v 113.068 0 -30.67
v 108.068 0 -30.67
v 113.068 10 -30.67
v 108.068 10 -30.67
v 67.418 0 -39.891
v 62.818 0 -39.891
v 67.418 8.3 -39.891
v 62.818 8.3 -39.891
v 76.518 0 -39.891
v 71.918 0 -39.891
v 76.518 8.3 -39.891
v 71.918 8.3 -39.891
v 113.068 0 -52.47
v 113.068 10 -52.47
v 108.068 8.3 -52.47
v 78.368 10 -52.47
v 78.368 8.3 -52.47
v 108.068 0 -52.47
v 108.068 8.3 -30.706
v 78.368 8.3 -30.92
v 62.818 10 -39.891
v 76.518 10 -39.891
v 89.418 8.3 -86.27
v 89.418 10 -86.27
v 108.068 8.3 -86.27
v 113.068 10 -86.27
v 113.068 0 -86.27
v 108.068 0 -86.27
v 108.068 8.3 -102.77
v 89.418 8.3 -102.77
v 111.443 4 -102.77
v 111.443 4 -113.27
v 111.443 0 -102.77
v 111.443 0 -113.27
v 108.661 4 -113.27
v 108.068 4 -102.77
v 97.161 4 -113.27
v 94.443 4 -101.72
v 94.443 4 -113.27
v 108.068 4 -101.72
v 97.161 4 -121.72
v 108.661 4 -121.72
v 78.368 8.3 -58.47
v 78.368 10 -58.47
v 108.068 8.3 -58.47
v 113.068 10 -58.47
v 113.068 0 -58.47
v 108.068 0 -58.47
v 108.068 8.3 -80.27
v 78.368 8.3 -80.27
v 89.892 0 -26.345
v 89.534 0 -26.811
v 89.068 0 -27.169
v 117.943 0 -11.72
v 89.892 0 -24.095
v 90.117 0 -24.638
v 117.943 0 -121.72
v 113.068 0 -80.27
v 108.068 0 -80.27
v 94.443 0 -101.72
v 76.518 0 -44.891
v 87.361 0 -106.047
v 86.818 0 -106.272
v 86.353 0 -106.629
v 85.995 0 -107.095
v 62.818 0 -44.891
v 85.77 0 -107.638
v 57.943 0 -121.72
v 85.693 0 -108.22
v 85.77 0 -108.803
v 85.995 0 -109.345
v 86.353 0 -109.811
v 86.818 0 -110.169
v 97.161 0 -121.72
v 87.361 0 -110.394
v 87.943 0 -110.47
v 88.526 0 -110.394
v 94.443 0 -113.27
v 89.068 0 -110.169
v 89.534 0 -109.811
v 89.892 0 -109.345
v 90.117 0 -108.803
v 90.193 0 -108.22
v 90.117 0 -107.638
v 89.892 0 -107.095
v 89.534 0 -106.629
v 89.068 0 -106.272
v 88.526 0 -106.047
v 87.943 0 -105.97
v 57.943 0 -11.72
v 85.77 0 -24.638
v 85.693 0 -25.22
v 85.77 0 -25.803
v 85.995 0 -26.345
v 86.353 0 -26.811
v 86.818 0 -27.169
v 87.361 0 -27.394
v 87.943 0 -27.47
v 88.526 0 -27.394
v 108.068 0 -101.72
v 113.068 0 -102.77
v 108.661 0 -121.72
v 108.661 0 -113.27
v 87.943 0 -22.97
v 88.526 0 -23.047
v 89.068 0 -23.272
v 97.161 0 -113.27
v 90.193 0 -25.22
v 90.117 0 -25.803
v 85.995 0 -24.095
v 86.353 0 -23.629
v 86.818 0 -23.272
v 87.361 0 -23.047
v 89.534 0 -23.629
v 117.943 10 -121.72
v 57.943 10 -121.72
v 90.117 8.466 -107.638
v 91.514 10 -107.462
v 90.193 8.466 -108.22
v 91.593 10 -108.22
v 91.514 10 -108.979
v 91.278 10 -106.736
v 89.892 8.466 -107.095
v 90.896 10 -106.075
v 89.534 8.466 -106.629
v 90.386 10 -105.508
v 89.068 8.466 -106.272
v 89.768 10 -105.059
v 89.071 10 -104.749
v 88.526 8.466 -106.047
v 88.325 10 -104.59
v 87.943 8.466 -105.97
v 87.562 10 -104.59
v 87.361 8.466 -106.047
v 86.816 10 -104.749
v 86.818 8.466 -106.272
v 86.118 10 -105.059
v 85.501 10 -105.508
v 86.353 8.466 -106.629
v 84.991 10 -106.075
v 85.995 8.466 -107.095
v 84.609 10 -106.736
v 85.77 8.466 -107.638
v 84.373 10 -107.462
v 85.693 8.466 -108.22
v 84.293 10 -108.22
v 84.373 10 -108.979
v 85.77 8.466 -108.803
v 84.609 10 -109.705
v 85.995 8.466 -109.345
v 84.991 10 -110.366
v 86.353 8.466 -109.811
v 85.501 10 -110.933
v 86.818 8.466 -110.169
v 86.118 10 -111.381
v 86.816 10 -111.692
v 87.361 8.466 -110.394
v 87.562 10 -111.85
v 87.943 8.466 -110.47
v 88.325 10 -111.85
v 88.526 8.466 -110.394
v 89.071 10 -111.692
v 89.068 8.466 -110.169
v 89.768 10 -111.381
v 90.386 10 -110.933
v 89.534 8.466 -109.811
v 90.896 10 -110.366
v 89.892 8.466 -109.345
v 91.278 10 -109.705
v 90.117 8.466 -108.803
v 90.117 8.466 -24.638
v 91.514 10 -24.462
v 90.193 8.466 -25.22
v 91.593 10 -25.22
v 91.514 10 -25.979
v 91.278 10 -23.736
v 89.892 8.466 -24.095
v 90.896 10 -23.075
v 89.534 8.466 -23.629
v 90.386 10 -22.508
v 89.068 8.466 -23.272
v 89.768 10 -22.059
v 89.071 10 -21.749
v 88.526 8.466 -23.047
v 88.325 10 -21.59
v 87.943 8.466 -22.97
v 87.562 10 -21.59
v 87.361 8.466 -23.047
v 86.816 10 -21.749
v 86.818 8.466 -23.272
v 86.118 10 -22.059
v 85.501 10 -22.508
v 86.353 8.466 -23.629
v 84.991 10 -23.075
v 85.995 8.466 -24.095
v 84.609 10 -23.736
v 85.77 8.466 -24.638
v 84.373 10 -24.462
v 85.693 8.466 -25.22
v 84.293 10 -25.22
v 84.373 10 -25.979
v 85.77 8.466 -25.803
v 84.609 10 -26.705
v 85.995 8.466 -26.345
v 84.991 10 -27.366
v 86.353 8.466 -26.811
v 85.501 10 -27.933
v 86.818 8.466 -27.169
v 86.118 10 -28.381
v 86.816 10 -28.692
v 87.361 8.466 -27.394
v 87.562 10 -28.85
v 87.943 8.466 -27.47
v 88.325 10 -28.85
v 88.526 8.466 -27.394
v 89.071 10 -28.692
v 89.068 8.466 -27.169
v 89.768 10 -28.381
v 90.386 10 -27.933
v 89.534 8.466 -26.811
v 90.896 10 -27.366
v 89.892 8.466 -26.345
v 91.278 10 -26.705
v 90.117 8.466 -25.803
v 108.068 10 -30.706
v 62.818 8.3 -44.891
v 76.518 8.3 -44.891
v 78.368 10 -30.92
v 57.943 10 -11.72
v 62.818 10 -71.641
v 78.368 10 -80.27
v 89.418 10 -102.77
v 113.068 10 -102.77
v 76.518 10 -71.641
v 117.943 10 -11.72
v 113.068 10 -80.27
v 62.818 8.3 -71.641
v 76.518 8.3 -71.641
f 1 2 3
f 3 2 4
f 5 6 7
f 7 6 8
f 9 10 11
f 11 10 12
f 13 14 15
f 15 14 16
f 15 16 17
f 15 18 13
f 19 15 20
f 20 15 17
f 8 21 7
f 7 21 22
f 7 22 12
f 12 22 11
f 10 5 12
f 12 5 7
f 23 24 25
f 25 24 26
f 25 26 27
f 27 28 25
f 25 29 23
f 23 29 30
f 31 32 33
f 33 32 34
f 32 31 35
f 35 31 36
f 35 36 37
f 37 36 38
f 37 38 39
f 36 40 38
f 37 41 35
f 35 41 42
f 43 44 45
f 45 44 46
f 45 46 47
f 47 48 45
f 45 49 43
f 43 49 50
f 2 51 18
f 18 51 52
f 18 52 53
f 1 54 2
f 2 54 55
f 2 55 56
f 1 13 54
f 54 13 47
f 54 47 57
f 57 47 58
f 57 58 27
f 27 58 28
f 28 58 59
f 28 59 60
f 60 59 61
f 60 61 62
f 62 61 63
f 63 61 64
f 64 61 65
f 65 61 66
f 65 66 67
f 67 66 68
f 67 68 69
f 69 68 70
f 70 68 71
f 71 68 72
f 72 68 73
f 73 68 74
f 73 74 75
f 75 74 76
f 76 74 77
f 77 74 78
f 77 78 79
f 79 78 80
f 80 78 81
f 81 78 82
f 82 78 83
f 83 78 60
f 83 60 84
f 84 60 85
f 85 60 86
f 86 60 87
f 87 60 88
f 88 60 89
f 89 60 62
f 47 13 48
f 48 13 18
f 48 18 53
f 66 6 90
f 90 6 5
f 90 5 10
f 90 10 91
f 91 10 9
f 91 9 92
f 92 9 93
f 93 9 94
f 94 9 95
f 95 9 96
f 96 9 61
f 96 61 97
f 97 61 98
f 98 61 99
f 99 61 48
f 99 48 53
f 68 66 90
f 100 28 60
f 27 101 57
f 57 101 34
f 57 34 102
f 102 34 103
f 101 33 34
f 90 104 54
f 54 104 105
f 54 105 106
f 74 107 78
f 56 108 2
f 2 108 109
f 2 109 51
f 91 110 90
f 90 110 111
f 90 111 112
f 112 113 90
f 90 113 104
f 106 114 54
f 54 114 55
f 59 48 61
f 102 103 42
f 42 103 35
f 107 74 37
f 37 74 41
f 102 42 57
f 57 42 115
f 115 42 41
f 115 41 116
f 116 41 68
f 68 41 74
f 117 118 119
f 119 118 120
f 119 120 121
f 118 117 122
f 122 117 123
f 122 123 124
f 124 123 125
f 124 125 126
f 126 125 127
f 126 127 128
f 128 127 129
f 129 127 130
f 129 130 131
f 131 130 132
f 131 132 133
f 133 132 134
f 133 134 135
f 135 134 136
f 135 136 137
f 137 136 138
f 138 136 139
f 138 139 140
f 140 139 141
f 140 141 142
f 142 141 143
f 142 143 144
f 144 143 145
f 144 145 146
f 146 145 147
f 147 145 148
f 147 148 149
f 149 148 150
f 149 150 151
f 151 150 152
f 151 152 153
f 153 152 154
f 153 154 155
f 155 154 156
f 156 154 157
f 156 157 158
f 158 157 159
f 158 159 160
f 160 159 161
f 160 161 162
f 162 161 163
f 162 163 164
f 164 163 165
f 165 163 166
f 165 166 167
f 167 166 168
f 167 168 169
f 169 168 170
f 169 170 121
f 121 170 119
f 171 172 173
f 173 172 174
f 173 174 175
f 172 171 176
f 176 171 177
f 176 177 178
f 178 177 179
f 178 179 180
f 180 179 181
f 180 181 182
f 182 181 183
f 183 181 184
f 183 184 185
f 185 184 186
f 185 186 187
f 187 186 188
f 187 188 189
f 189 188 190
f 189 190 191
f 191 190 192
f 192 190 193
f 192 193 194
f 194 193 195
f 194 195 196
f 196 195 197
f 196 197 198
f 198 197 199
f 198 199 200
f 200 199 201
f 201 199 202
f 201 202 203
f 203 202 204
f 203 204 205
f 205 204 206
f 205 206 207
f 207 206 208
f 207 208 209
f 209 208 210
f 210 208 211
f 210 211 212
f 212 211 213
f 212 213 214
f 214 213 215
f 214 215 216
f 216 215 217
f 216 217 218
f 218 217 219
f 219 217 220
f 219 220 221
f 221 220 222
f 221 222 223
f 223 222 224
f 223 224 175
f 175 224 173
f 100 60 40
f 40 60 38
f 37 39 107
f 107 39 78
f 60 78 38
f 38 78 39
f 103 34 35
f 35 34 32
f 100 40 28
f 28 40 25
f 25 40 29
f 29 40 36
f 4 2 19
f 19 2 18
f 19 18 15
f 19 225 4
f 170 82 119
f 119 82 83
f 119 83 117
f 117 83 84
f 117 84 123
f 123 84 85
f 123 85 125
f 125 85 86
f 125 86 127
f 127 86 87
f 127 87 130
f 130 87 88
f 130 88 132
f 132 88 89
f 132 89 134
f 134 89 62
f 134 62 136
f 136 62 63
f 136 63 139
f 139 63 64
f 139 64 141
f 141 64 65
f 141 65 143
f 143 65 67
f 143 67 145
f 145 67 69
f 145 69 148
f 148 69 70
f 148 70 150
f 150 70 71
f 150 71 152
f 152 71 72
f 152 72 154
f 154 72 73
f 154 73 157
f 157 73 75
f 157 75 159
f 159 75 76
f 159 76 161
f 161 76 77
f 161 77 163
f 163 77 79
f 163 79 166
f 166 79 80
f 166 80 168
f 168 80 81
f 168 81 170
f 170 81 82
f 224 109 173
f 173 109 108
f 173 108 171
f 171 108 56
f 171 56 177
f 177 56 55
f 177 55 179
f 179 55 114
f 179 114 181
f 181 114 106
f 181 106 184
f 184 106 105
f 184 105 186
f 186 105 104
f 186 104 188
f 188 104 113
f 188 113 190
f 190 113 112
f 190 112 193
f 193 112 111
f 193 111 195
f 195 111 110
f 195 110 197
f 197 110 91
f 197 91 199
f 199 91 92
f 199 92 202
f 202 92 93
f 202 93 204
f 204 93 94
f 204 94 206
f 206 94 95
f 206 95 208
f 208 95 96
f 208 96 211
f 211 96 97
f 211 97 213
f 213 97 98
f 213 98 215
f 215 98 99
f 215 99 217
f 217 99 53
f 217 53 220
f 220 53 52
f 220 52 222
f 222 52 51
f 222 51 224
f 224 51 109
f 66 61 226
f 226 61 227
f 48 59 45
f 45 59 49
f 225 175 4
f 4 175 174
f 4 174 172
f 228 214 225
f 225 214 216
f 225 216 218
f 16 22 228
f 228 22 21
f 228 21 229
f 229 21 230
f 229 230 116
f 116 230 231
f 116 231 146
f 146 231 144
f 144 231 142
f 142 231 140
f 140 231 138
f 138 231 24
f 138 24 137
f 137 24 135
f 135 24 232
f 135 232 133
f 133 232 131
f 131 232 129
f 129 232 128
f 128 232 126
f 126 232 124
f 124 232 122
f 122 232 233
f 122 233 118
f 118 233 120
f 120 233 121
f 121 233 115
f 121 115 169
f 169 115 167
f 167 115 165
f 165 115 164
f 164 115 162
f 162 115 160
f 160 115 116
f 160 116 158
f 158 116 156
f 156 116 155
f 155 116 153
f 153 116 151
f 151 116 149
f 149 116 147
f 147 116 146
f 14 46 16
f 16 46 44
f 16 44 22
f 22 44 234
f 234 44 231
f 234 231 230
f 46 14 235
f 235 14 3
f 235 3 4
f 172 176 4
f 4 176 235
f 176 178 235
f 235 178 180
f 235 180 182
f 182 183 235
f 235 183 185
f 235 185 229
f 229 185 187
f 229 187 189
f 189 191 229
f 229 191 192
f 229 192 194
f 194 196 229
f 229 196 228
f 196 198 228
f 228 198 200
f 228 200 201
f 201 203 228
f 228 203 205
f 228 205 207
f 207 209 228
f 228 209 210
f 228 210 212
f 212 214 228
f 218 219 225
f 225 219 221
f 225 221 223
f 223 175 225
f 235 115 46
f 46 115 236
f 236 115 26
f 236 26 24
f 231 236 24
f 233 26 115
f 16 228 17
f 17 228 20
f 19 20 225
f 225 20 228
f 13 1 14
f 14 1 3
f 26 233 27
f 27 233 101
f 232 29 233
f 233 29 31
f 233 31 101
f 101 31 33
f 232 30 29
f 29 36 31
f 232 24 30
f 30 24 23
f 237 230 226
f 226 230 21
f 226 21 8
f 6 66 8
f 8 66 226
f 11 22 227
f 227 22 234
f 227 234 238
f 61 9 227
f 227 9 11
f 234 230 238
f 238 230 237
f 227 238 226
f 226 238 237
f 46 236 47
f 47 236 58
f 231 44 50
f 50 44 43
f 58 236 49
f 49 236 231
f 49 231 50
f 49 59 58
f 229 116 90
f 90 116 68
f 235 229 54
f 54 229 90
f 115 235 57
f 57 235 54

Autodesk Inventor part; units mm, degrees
ref_plane "작업 평면1" through (0, 10, 0) normal (0, 1, 0) x (1, 0, 0)
sketch "스케치3" plane through (0, 10, 0) normal (0, 1, 0) x (1, 0, 0)
  line L0 (113.0685, 80.2704) -> (78.3685, 80.2704)
  line L1 (76.5185, 71.6407) -> (76.5185, 39.8907)
  line L2 (76.5185, 71.6407) -> (62.8185, 71.6407)
  line L3 (78.3685, 80.2704) -> (78.3685, 58.4704)
  line L4 (113.0685, 58.4704) -> (113.0685, 80.2704)
  line L5 (113.0685, 58.4704) -> (78.3685, 58.4704)
  line L6 (108.4435, 113.2704) -> (97.4435, 113.2704)
  line L7 (97.4435, 113.2704) -> (97.4435, 121.7204)
  line L8 (97.4435, 121.7204) -> (108.4435, 121.7204)
  line L9 (108.4435, 121.7204) -> (108.4435, 113.2704)
  line L10 (113.0685, 52.4704) -> (78.3685, 52.4704)
  line L11 (113.0685, 30.6704) -> (113.0685, 52.4704)
  line L12 (62.8185, 39.8907) -> (76.5185, 39.8907)
  line L13 (62.8185, 71.6407) -> (62.8185, 39.8907)
  line L14 (78.3685, 52.4704) -> (78.3685, 30.9204)
  line L15 (113.0685, 30.6704) -> (78.3685, 30.9204)
  line L16 (117.9435, 121.7204) -> (57.9435, 121.7204)
  line L17 (57.9435, 121.7204) -> (57.9435, 11.7204)
  line L18 (117.9435, 11.7204) -> (117.9435, 121.7204)
  line L19 (57.9435, 11.7204) -> (117.9435, 11.7204)
  circle A0 centre (87.9435, 108.2204) radius 2.25
  circle A1 centre (87.9435, 25.2204) radius 2.25
  line L20 (113.0685, 99.0204) -> (108.0685, 99.0204)
  line L21 (108.0685, 90.0204) -> (113.0685, 90.0204)
  line L22 (113.0685, 99.0204) -> (113.0685, 90.0204)
  line L23 (108.0685, 99.0204) -> (108.0685, 90.0204)
  line L24 (71.9185, 39.8907) -> (67.4185, 39.8907)
  line L25 (113.0685, 39.3204) -> (108.0685, 39.3204)
  line L26 (108.0685, 43.8204) -> (113.0685, 43.8204)
  line L27 (71.9185, 44.8907) -> (71.9185, 39.8907)
  line L28 (108.0685, 43.8204) -> (108.0685, 39.3204)
  line L29 (113.0685, 43.8204) -> (113.0685, 39.3204)
  line L30 (71.9185, 44.8907) -> (67.4185, 44.8907)
  line L31 (67.4185, 44.8907) -> (67.4185, 39.8907)
  line L32 (113.0685, 71.6204) -> (113.0685, 67.1204)
  line L33 (113.0685, 86.2704) -> (89.4185, 86.2704)
  line L34 (89.4185, 86.2704) -> (89.4185, 102.7704)
  line L35 (89.4185, 102.7704) -> (113.0685, 102.7704)
  line L36 (113.0685, 102.7704) -> (113.0685, 86.2704)
  line L37 (108.0685, 67.1204) -> (113.0685, 67.1204)
  line L38 (113.0685, 67.1204) -> (113.0685, 71.6204)
  line L39 (113.0685, 71.6204) -> (108.0685, 71.6204)
  line L40 (108.0685, 71.6204) -> (108.0685, 67.1204)
  line L41 (113.0685, 30.6704) -> (108.0685, 30.6704)
  line L42 (108.0685, 30.6704) -> (108.0685, 52.4704)
  line L43 (108.0685, 52.4704) -> (113.0685, 52.4704)
  line L44 (113.0685, 52.4704) -> (113.0685, 30.6704)
  line L45 (113.0685, 58.4704) -> (108.0685, 58.4704)
  line L46 (108.0685, 58.4704) -> (108.0685, 80.2704)
  line L47 (108.0685, 80.2704) -> (113.0685, 80.2704)
  line L48 (113.0685, 80.2704) -> (113.0685, 58.4704)
  line L49 (113.0685, 86.2704) -> (108.0685, 86.2704)
  line L50 (108.0685, 86.2704) -> (108.0685, 102.7704)
  line L51 (108.0685, 102.7704) -> (113.0685, 102.7704)
  line L52 (113.0685, 102.7704) -> (113.0685, 86.2704)
  line L53 (76.5185, 39.8907) -> (62.8185, 39.8907)
  line L54 (62.8185, 39.8907) -> (62.8185, 44.8907)
  line L55 (62.8185, 44.8907) -> (76.5185, 44.8907)
  line L56 (76.5185, 44.8907) -> (76.5185, 39.8907)
  point P0 (0, 0)
  dimension "d8" = 9.5
extrude "돌출2" add sketch "스케치3" against normal blind 10 contours L4 L39 L46 L0 | L46 L40 L5 L3 L0 | L4 L37 L40 L39 | L4 L5 L46 L37 | L1 L55 L30 L13 L2 | L1 L12 L27 L55 | L27 L12 L31 L30 | L55 L31 L12 L13 | L9 L16 L18 L19 L17 L7 L6 | L6 L7 L8 L9 | L11 L26 L42 L10 | L42 L28 L15 L14 L10 | L11 L25 L28 L26 | L11 L15 L42 L25 | L41 L42 L15 | A0 | A1 | L22 L21 L23 L20 | L20 L50 L35 L36 | L23 L50 L33 L34 L35 | L36 L33 L50 L21
sketch "스케치4" plane through (0, 10, 0) normal (0, 1, 0) x (1, 0, 0)
  point P0 (0, 0)
extrude "돌출3" cut sketch "스케치3" against normal blind 1.7 contours L4 L39 L46 L0 | L46 L40 L5 L3 L0 | L4 L5 L46 L37 | L1 L55 L30 L13 L2 | L1 L12 L27 L55 | L55 L31 L12 L13 | L11 L26 L42 L10 | L42 L28 L15 L14 L10 | L11 L15 L42 L25 | L20 L50 L35 L36 | L23 L50 L33 L34 L35 | L36 L33 L50 L21
extrude "돌출4" cut sketch "스케치3" against normal through all contours L4 L37 L40 L39 | L27 L12 L31 L30 | L11 L25 L28 L26 | A0 | A1 | L22 L21 L23 L20
sketch "스케치5" plane through (117.9435, 10, -121.7204) normal (0, 0, -1) x (-1, 0, 0)
  point P0 (117.9435, -10)
extrude "돌출5" cut sketch "스케치3" against normal through all contours L6 L7 L8 L9
sketch "스케치6" plane through (0, 0, 0) normal (0, -1, 0) x (1, 0, 0)
  line L0 (57.9435, -121.7204) -> (97.4435, -121.7204) projected
  line L1 (97.4435, -121.7204) -> (57.9435, -121.7204) projected
  line L2 (113.0685, -71.6204) -> (108.0685, -71.6204) projected
  line L3 (113.0685, -80.2704) -> (113.0685, -71.6204) projected
  line L4 (78.3685, -80.2704) -> (113.0685, -80.2704) projected
  line L5 (78.3685, -58.4704) -> (78.3685, -80.2704) projected
  line L6 (113.0685, -58.4704) -> (78.3685, -58.4704) projected
  line L7 (113.0685, -67.1204) -> (113.0685, -58.4704) projected
  line L8 (108.0685, -67.1204) -> (113.0685, -67.1204) projected
  line L9 (108.0685, -71.6204) -> (108.0685, -67.1204) projected
  line L10 (117.9435, -121.7204) -> (108.4435, -121.7204) projected
  line L11 (111.4435, -108.7204) -> (94.443, -108.7204)
  line L12 (111.4435, -108.7204) -> (111.4435, -113.2704)
  line L13 (94.443, -108.7204) -> (94.443, -113.2704)
  line L14 (111.4435, -113.2704) -> (94.443, -113.2704)
  point P0 (0, 0)
sketch "스케치7" plane through (0, 0, 0) normal (0, -1, 0) x (1, 0, 0)
  point P0 (0, 0)
sketch "스케치8" plane through (0, 0, 0) normal (0, -1, 0) x (1, 0, 0)
  point P0 (0, 0)
extrude "돌출6" cut sketch "스케치6" against normal blind 4 contours L12 L14 L13 L11
extrude "돌출7" add sketch "스케치3" against normal blind 6 contours L6 L7 L8 L9
sketch "스케치9" plane through (0, 0, 0) normal (0, -1, 0) x (1, 0, 0)
  line L0 (111.4435, -108.7204) -> (111.4435, -113.2704) projected
  line L1 (111.4435, -108.7204) -> (111.4435, -101.7204)
  line L2 (111.4435, -101.7204) -> (94.443, -101.7204)
  line L3 (94.443, -113.2704) -> (94.443, -108.7204) projected
  line L4 (94.443, -101.7204) -> (94.443, -108.7204)
  line L5 (94.443, -108.7204) -> (111.4435, -108.7204) projected
  line L6 (111.4435, -108.7204) -> (94.443, -108.7204)
  point P0 (0, 0)
  dimension "d25" = 7
extrude "돌출8" cut sketch "스케치9" against normal blind 4
sketch "스케치10" plane through (0, 10, 0) normal (0, 1, 0) x (1, 0, 0)
  circle A0 centre (87.9435, 25.2204) radius 2.25 projected
  circle A1 centre (87.9435, 25.2204) radius 3.85
  circle A2 centre (87.9435, 108.2204) radius 2.25 projected
  circle A3 centre (87.9435, 108.2204) radius 3.85
  point P0 (0, 0)
  dimension "d28" = 7.7
  dimension "d29" = 7.7
ref_plane "작업 평면2" through (0, 10, 0) normal (0, 1, 0) x (1, 0, 0)
sketch "스케치12" plane through (0, 10, 0) normal (0, 1, 0) x (1, 0, 0)
  point P0 (0, 0)
ref_plane "작업 평면3" through (57.9435, 10, -25.2204) normal (0, 0, 1) x (1, 0, 0)
sketch "스케치13" plane through (57.9435, 10, -25.2204) normal (0, 0, 1) x (1, 0, 0)
  line L0 (30, 0) -> (30, -4)
  line L1 (30, 0) -> (33.65, 0)
  line L2 (27.75, 0) -> (32.25, 0) projected
  line L3 (33.65, 0) -> (30, -4)
  point P0 (-57.9435, -10)
  dimension "d35" = 4
  dimension "d36" = 3.65
sketch "스케치14" plane through (57.9435, 10, -25.2204) normal (0, 0, 1) x (1, 0, 0)
  point P0 (-57.9435, -10)
revolve "회전2" cut sketch "스케치13" angle 360 about axis through (87.9435, 10, -25.2204) along (0, -1, 0)
ref_plane "작업 평면4" through (57.9435, 10, -66.7204) normal (0, 0, 1) x (1, 0, 0)
mirror "미러1" about plane through (57.9435, 10, -66.7204) normal (0, 0, 1) of "회전2"
sketch "스케치15" plane through (0, 0, 0) normal (0, -1, 0) x (1, 0, 0)
  line L0 (108.6612, -121.7204) -> (97.1612, -121.7204)
  line L1 (97.1612, -121.7204) -> (97.1612, -113.2704)
  line L2 (108.6612, -121.7204) -> (108.6612, -113.2704)
  line L3 (97.1612, -113.2704) -> (108.6612, -113.2704)
  line L4 (97.4435, -113.2704) -> (94.443, -113.2704) projected
  point P0 (0, 0)
extrude "돌출9" cut sketch "스케치15" against normal blind 4
extrude "돌출10" cut sketch "스케치3" against normal through all contours L4 L39 L46 L0 | L4 L5 L46 L37 | L1 L12 L27 L55 | L55 L31 L12 L13 | L11 L26 L42 L10 | L11 L15 L42 L25 | L41 L42 L15 | L20 L50 L35 L36 | L36 L33 L50 L21
equation "\"TransitionRadius\" = BendRadius"
equation "\"BendRadius\" = 0.5"
properties part number "123"
